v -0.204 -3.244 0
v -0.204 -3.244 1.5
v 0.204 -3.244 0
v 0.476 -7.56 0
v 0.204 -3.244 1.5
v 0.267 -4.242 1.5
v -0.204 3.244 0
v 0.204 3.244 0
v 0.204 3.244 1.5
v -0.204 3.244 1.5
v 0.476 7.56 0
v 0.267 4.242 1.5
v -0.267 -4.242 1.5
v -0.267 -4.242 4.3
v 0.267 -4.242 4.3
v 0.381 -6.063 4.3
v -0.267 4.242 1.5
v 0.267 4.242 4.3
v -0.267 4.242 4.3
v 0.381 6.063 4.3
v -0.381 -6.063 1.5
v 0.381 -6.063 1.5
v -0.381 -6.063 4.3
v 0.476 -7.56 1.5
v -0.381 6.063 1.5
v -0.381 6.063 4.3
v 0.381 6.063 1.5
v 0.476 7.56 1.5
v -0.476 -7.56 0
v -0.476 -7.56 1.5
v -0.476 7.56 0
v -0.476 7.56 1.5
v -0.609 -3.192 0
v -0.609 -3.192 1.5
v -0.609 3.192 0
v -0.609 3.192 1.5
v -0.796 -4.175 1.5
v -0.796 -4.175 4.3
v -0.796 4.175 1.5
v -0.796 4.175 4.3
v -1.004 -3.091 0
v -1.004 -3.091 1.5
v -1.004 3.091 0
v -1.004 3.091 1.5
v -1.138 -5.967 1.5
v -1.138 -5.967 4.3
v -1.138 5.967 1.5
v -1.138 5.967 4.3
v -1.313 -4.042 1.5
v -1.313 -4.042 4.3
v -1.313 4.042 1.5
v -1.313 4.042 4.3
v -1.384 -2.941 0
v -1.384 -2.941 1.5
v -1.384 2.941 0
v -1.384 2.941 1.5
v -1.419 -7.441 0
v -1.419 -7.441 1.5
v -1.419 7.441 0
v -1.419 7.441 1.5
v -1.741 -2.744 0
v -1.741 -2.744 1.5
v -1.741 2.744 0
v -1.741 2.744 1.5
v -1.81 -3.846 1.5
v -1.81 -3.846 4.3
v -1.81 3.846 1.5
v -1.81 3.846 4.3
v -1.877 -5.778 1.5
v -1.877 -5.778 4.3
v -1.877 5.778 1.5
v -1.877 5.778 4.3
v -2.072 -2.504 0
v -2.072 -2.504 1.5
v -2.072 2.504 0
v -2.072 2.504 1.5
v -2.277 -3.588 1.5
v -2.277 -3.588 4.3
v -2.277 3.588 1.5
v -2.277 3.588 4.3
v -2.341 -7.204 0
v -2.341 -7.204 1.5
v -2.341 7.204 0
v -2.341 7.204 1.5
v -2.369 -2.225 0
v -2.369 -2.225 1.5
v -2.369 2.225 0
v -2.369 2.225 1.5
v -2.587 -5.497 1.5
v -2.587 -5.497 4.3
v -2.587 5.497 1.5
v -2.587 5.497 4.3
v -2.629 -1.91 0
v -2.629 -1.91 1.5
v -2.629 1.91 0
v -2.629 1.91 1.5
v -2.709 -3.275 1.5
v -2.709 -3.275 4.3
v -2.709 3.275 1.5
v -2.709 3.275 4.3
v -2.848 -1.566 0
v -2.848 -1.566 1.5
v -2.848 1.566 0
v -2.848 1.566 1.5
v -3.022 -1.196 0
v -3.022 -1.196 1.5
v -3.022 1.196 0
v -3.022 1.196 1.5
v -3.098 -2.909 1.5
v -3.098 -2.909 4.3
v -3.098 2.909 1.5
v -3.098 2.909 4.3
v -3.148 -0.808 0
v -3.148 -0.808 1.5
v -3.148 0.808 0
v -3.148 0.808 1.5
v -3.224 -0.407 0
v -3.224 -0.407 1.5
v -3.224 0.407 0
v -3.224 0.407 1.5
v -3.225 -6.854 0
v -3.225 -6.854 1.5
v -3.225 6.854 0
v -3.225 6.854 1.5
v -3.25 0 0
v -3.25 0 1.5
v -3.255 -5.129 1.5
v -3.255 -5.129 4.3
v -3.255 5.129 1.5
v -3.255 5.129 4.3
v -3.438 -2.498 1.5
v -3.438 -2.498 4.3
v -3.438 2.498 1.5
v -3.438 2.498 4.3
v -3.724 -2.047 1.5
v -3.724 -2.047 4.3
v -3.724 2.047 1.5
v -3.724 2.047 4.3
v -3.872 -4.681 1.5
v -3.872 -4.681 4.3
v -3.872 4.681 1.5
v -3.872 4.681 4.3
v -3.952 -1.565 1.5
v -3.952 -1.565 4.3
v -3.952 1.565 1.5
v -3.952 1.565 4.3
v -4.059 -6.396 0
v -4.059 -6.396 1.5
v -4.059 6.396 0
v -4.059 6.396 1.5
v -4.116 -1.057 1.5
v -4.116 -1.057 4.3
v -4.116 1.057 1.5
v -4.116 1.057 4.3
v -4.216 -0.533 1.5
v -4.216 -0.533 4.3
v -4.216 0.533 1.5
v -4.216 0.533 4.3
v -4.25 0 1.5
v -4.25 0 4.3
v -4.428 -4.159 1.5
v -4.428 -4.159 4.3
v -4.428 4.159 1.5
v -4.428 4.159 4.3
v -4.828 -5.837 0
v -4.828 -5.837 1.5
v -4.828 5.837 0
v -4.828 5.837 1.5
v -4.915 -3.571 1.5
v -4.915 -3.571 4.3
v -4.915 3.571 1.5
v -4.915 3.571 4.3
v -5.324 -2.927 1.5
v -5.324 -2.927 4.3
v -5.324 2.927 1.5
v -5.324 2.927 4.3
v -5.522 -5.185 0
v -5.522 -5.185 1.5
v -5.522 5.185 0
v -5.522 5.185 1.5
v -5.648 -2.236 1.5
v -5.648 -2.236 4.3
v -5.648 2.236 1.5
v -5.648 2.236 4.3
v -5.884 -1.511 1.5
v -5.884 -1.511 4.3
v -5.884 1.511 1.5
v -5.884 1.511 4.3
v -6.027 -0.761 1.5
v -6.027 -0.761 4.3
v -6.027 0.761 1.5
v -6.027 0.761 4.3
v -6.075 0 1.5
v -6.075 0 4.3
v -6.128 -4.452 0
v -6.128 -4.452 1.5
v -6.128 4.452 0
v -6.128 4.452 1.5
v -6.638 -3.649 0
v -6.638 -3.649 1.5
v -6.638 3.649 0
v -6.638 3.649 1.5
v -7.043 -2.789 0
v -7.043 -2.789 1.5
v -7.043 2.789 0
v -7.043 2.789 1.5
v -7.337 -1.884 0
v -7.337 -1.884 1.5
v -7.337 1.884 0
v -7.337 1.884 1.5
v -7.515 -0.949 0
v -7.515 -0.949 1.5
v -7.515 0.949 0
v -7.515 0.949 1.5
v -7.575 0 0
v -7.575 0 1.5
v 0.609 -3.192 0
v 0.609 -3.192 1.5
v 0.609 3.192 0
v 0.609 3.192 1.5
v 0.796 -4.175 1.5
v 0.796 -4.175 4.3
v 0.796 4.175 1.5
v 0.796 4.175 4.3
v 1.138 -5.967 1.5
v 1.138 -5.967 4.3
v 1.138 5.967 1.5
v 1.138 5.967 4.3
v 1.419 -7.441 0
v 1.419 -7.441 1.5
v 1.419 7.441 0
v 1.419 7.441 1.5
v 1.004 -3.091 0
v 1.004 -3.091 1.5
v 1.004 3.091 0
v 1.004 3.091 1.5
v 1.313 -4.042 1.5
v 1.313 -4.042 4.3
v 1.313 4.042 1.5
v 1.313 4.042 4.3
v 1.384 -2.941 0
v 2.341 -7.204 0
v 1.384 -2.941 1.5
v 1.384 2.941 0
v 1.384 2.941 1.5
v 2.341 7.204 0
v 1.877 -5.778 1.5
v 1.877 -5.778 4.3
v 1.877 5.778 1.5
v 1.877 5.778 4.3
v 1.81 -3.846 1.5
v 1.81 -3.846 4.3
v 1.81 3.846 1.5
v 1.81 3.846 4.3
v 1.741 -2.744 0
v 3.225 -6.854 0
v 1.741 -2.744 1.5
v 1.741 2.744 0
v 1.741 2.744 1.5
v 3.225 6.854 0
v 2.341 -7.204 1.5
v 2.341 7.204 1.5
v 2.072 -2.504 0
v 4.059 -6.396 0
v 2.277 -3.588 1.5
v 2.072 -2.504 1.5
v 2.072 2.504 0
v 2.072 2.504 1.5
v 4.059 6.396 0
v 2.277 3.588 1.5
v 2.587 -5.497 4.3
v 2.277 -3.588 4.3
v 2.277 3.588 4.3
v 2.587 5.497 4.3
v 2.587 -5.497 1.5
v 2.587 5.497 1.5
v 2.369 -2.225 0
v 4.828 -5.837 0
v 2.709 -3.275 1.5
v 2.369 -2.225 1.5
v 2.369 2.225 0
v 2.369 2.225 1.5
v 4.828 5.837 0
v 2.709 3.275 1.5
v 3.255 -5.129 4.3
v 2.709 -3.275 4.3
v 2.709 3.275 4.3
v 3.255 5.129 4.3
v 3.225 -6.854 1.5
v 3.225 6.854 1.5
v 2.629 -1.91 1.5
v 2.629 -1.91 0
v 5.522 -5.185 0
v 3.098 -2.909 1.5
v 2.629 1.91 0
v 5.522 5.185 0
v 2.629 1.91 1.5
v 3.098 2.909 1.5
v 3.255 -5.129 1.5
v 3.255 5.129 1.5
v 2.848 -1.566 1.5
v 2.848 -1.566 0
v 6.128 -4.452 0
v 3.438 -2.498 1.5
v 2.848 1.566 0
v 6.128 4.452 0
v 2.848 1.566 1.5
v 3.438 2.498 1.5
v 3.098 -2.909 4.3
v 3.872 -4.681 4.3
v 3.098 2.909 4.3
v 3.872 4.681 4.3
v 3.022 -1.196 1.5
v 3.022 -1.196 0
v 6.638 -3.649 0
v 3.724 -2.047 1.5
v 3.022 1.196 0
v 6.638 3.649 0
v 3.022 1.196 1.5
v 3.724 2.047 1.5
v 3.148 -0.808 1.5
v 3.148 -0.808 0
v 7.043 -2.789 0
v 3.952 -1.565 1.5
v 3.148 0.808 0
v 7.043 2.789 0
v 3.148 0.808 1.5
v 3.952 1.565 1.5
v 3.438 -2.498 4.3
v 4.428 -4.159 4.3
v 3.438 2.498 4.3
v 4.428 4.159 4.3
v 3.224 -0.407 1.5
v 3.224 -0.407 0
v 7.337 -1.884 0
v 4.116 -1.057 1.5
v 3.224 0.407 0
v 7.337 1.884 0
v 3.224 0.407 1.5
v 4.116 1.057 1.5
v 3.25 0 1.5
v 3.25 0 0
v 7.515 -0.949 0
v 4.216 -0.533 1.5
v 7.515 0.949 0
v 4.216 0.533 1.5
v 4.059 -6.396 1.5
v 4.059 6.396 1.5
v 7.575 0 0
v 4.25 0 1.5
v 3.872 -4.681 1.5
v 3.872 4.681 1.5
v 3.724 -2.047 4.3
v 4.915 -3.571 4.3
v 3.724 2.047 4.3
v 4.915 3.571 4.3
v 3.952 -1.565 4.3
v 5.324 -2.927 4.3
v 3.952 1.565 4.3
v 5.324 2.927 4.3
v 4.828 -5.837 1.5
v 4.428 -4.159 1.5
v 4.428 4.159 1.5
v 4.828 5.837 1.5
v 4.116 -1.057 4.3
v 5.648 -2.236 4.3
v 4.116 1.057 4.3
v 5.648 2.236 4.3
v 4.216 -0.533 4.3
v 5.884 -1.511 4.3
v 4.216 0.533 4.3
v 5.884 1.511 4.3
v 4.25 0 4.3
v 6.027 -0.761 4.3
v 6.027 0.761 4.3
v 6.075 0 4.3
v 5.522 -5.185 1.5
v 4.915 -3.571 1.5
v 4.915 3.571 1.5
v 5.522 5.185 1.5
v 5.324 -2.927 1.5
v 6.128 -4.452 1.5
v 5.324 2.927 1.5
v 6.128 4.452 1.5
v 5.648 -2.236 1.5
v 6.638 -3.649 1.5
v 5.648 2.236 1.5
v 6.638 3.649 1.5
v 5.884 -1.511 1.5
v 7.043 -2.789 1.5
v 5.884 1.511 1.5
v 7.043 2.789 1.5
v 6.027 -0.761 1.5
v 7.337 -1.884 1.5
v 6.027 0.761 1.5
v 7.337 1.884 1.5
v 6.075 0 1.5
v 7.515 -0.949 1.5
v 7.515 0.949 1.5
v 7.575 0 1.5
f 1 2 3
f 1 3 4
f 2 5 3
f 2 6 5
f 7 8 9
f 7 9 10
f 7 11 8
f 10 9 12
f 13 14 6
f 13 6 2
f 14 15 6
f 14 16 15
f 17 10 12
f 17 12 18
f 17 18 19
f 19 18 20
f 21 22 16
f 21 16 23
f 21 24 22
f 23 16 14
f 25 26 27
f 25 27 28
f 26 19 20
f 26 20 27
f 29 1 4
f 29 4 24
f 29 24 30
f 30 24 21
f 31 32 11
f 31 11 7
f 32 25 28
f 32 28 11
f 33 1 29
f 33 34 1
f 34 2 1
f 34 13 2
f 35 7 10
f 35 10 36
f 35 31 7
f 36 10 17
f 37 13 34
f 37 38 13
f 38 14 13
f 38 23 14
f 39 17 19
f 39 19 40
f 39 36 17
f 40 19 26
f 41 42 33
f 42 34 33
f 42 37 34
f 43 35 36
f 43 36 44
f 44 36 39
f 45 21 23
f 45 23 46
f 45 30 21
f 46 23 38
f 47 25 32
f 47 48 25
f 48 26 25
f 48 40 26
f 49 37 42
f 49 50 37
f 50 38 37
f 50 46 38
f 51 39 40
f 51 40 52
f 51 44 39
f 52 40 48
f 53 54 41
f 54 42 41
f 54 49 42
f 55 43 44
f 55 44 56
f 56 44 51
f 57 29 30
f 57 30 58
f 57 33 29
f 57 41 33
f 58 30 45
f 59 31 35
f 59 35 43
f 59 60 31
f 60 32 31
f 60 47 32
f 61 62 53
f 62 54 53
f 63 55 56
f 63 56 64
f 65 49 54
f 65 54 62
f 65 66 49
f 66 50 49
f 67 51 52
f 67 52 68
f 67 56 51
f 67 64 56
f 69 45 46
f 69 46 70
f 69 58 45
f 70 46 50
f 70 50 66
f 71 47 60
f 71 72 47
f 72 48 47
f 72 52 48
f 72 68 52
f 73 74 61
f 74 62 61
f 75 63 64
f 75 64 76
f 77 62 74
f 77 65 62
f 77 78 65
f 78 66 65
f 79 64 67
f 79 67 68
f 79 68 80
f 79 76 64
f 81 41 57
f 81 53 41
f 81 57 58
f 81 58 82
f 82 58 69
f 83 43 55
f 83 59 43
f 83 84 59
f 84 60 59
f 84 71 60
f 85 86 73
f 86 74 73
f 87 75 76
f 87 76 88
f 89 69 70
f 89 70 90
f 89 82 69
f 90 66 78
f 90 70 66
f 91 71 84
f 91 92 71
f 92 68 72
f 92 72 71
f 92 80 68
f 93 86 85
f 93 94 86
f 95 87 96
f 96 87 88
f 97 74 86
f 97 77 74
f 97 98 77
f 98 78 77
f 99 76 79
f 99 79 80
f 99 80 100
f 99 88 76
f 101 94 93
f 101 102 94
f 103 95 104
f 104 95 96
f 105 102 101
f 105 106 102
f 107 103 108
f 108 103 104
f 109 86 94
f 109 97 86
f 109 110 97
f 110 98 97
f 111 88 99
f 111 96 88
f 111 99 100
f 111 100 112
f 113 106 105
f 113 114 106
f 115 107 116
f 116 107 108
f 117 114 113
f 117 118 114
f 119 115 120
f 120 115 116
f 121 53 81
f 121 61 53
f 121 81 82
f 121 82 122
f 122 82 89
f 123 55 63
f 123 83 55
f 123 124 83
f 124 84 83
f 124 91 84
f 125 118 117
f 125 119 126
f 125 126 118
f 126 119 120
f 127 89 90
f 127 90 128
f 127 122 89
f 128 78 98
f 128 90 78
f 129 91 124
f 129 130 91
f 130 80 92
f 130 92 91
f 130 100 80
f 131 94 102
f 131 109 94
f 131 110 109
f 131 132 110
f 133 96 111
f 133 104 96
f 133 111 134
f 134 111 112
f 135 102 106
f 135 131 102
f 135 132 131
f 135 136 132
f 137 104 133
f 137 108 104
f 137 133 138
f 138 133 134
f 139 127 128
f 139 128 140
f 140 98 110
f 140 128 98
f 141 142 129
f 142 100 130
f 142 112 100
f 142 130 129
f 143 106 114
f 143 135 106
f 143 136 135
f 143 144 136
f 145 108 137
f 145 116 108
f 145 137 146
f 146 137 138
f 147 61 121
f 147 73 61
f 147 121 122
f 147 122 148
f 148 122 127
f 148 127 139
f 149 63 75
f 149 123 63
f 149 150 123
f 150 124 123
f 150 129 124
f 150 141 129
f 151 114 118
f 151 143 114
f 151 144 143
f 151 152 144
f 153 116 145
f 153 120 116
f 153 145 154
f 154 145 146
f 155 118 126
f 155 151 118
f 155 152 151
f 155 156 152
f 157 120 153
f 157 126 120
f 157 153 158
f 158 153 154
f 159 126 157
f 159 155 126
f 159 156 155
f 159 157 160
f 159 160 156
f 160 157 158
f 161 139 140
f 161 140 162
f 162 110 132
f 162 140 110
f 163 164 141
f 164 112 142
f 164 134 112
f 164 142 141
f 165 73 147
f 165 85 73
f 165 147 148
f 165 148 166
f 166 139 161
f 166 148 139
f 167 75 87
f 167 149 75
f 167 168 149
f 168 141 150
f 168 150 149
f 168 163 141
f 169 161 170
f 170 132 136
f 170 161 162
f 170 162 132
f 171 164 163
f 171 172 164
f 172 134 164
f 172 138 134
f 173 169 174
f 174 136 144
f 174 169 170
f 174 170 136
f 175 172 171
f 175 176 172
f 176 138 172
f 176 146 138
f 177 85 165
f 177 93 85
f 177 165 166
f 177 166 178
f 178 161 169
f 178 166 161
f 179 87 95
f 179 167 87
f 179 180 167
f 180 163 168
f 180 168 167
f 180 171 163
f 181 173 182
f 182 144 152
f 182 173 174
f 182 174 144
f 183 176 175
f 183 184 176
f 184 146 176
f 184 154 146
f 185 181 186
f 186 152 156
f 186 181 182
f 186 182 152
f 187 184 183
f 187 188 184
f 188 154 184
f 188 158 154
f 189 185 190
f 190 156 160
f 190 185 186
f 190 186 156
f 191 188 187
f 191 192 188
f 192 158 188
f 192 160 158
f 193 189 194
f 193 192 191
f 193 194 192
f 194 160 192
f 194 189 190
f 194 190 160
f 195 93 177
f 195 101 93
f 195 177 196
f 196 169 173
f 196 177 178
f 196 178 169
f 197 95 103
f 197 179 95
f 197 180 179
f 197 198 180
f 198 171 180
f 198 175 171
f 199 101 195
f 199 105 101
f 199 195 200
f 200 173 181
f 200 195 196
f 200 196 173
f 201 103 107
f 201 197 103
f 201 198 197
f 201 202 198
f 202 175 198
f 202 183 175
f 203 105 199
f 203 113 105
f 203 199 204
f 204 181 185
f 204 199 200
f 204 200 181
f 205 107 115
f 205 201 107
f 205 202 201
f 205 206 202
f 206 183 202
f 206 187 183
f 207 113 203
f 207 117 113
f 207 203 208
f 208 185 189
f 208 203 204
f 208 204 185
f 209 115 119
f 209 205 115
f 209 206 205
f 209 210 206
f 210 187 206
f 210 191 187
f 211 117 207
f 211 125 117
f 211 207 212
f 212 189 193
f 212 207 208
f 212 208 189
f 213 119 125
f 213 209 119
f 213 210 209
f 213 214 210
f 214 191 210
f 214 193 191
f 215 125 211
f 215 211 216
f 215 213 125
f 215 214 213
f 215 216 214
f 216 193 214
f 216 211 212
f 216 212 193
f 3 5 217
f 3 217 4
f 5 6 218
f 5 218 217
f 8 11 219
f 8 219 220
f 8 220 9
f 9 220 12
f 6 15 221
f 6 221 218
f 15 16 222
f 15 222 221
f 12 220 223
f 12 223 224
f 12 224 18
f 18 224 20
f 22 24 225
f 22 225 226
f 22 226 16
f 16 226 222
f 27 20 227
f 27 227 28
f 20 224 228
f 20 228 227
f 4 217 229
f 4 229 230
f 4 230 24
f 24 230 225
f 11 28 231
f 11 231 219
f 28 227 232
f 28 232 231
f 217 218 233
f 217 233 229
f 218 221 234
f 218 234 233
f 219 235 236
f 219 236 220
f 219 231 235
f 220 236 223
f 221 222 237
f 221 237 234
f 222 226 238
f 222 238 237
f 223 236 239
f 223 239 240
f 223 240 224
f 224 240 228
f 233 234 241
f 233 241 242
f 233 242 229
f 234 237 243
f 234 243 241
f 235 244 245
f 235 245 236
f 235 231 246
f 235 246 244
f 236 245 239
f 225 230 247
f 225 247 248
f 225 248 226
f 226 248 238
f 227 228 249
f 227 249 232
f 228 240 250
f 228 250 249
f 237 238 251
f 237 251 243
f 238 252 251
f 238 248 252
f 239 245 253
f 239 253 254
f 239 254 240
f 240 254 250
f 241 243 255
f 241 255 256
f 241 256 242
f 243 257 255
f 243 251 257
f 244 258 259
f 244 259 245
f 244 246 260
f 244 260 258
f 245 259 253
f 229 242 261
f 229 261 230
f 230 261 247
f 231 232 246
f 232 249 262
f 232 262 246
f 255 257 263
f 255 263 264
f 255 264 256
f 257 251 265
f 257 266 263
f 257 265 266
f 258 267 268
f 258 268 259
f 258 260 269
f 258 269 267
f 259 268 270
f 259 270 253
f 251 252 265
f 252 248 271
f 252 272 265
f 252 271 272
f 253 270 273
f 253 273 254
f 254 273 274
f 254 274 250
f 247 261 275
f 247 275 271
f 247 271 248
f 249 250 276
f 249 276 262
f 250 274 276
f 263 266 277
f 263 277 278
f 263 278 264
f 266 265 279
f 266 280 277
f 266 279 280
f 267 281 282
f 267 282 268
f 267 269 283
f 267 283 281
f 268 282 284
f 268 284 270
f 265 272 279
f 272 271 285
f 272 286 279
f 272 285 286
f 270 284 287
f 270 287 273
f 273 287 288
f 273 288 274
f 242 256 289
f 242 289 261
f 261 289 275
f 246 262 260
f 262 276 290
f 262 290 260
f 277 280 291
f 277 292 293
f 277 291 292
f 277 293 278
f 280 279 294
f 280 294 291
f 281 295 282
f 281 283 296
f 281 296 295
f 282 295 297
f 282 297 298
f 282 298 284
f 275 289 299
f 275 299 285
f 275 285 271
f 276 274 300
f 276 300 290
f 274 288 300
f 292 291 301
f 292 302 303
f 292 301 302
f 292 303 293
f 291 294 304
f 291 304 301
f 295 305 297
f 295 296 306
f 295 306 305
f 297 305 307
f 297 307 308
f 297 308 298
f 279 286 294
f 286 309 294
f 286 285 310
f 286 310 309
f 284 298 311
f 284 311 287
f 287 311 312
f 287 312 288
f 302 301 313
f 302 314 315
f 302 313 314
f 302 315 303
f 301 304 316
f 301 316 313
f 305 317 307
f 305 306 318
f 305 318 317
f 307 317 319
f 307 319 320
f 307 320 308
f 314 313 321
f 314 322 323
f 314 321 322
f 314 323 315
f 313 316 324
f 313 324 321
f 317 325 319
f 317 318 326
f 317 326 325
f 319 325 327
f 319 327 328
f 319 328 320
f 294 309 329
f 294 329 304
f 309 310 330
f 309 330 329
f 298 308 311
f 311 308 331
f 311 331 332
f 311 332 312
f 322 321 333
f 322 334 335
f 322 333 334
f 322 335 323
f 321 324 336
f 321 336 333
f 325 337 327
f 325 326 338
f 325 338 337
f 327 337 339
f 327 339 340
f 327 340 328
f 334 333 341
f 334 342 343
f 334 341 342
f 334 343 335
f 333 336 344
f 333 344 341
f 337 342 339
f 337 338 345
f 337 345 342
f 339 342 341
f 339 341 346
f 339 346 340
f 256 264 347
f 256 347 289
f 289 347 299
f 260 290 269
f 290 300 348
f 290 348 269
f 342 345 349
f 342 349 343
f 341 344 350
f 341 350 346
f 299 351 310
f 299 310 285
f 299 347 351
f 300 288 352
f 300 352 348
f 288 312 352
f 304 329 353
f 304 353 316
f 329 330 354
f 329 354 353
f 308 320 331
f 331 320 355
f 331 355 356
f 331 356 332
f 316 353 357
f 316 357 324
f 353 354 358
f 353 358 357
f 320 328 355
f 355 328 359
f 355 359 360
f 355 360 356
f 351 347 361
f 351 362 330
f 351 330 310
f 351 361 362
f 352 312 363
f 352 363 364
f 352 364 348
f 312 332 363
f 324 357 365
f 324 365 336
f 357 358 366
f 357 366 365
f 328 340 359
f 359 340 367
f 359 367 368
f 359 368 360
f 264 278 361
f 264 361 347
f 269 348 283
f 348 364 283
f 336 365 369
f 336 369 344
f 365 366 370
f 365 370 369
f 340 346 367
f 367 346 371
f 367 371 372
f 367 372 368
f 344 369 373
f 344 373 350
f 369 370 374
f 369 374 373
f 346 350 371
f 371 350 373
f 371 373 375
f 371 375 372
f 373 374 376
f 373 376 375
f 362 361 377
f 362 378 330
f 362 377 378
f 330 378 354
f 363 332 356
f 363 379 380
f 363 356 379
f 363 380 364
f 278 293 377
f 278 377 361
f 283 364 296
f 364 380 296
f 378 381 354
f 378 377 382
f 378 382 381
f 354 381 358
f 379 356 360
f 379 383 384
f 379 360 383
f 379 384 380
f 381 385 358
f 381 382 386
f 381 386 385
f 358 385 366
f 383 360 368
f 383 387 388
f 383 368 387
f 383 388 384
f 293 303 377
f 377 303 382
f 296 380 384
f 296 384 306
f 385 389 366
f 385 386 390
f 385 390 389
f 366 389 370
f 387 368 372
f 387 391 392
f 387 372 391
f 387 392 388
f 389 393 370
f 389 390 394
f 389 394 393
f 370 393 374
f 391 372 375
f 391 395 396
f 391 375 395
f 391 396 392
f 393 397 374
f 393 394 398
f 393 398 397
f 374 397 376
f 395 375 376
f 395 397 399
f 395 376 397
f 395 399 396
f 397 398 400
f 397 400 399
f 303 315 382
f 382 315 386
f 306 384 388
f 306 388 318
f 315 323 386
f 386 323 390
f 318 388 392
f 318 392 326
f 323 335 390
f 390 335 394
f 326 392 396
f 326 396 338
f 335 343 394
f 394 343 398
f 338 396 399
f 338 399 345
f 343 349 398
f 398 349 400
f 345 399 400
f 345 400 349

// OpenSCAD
// file: ../888_1023.scad
include <../parameters.scad>

draft = $preview;

module 888_1023(height = 3, draft = true){

    inner_diameter = M8_screw_diameter;
    outer_diameter = bearing_efsm_12_d + 3;
    rim_height = 1.5;
    bearng_ball_height = height;

    difference(){
        union(){
            cylinder(h = rim_height, d = outer_diameter, $fn = 50);
            translate([0,0,rim_height])
                cylinder(h = bearng_ball_height, d = bearing_efsm_12_d, $fn = 50);
        }


        cylinder(d = M6_screw_diameter, h = 10, $fn = 50);

        translate([0, 0, rim_height])
            cylinder(h = 2 * bearng_ball_height , d = inner_diameter, $fn = 50);
    }
}

888_1023(3, draft);
// main file
include <../../parameters.scad>
use <../888_1023.scad>

draft = $preview;

888_1023(2.8, draft);
